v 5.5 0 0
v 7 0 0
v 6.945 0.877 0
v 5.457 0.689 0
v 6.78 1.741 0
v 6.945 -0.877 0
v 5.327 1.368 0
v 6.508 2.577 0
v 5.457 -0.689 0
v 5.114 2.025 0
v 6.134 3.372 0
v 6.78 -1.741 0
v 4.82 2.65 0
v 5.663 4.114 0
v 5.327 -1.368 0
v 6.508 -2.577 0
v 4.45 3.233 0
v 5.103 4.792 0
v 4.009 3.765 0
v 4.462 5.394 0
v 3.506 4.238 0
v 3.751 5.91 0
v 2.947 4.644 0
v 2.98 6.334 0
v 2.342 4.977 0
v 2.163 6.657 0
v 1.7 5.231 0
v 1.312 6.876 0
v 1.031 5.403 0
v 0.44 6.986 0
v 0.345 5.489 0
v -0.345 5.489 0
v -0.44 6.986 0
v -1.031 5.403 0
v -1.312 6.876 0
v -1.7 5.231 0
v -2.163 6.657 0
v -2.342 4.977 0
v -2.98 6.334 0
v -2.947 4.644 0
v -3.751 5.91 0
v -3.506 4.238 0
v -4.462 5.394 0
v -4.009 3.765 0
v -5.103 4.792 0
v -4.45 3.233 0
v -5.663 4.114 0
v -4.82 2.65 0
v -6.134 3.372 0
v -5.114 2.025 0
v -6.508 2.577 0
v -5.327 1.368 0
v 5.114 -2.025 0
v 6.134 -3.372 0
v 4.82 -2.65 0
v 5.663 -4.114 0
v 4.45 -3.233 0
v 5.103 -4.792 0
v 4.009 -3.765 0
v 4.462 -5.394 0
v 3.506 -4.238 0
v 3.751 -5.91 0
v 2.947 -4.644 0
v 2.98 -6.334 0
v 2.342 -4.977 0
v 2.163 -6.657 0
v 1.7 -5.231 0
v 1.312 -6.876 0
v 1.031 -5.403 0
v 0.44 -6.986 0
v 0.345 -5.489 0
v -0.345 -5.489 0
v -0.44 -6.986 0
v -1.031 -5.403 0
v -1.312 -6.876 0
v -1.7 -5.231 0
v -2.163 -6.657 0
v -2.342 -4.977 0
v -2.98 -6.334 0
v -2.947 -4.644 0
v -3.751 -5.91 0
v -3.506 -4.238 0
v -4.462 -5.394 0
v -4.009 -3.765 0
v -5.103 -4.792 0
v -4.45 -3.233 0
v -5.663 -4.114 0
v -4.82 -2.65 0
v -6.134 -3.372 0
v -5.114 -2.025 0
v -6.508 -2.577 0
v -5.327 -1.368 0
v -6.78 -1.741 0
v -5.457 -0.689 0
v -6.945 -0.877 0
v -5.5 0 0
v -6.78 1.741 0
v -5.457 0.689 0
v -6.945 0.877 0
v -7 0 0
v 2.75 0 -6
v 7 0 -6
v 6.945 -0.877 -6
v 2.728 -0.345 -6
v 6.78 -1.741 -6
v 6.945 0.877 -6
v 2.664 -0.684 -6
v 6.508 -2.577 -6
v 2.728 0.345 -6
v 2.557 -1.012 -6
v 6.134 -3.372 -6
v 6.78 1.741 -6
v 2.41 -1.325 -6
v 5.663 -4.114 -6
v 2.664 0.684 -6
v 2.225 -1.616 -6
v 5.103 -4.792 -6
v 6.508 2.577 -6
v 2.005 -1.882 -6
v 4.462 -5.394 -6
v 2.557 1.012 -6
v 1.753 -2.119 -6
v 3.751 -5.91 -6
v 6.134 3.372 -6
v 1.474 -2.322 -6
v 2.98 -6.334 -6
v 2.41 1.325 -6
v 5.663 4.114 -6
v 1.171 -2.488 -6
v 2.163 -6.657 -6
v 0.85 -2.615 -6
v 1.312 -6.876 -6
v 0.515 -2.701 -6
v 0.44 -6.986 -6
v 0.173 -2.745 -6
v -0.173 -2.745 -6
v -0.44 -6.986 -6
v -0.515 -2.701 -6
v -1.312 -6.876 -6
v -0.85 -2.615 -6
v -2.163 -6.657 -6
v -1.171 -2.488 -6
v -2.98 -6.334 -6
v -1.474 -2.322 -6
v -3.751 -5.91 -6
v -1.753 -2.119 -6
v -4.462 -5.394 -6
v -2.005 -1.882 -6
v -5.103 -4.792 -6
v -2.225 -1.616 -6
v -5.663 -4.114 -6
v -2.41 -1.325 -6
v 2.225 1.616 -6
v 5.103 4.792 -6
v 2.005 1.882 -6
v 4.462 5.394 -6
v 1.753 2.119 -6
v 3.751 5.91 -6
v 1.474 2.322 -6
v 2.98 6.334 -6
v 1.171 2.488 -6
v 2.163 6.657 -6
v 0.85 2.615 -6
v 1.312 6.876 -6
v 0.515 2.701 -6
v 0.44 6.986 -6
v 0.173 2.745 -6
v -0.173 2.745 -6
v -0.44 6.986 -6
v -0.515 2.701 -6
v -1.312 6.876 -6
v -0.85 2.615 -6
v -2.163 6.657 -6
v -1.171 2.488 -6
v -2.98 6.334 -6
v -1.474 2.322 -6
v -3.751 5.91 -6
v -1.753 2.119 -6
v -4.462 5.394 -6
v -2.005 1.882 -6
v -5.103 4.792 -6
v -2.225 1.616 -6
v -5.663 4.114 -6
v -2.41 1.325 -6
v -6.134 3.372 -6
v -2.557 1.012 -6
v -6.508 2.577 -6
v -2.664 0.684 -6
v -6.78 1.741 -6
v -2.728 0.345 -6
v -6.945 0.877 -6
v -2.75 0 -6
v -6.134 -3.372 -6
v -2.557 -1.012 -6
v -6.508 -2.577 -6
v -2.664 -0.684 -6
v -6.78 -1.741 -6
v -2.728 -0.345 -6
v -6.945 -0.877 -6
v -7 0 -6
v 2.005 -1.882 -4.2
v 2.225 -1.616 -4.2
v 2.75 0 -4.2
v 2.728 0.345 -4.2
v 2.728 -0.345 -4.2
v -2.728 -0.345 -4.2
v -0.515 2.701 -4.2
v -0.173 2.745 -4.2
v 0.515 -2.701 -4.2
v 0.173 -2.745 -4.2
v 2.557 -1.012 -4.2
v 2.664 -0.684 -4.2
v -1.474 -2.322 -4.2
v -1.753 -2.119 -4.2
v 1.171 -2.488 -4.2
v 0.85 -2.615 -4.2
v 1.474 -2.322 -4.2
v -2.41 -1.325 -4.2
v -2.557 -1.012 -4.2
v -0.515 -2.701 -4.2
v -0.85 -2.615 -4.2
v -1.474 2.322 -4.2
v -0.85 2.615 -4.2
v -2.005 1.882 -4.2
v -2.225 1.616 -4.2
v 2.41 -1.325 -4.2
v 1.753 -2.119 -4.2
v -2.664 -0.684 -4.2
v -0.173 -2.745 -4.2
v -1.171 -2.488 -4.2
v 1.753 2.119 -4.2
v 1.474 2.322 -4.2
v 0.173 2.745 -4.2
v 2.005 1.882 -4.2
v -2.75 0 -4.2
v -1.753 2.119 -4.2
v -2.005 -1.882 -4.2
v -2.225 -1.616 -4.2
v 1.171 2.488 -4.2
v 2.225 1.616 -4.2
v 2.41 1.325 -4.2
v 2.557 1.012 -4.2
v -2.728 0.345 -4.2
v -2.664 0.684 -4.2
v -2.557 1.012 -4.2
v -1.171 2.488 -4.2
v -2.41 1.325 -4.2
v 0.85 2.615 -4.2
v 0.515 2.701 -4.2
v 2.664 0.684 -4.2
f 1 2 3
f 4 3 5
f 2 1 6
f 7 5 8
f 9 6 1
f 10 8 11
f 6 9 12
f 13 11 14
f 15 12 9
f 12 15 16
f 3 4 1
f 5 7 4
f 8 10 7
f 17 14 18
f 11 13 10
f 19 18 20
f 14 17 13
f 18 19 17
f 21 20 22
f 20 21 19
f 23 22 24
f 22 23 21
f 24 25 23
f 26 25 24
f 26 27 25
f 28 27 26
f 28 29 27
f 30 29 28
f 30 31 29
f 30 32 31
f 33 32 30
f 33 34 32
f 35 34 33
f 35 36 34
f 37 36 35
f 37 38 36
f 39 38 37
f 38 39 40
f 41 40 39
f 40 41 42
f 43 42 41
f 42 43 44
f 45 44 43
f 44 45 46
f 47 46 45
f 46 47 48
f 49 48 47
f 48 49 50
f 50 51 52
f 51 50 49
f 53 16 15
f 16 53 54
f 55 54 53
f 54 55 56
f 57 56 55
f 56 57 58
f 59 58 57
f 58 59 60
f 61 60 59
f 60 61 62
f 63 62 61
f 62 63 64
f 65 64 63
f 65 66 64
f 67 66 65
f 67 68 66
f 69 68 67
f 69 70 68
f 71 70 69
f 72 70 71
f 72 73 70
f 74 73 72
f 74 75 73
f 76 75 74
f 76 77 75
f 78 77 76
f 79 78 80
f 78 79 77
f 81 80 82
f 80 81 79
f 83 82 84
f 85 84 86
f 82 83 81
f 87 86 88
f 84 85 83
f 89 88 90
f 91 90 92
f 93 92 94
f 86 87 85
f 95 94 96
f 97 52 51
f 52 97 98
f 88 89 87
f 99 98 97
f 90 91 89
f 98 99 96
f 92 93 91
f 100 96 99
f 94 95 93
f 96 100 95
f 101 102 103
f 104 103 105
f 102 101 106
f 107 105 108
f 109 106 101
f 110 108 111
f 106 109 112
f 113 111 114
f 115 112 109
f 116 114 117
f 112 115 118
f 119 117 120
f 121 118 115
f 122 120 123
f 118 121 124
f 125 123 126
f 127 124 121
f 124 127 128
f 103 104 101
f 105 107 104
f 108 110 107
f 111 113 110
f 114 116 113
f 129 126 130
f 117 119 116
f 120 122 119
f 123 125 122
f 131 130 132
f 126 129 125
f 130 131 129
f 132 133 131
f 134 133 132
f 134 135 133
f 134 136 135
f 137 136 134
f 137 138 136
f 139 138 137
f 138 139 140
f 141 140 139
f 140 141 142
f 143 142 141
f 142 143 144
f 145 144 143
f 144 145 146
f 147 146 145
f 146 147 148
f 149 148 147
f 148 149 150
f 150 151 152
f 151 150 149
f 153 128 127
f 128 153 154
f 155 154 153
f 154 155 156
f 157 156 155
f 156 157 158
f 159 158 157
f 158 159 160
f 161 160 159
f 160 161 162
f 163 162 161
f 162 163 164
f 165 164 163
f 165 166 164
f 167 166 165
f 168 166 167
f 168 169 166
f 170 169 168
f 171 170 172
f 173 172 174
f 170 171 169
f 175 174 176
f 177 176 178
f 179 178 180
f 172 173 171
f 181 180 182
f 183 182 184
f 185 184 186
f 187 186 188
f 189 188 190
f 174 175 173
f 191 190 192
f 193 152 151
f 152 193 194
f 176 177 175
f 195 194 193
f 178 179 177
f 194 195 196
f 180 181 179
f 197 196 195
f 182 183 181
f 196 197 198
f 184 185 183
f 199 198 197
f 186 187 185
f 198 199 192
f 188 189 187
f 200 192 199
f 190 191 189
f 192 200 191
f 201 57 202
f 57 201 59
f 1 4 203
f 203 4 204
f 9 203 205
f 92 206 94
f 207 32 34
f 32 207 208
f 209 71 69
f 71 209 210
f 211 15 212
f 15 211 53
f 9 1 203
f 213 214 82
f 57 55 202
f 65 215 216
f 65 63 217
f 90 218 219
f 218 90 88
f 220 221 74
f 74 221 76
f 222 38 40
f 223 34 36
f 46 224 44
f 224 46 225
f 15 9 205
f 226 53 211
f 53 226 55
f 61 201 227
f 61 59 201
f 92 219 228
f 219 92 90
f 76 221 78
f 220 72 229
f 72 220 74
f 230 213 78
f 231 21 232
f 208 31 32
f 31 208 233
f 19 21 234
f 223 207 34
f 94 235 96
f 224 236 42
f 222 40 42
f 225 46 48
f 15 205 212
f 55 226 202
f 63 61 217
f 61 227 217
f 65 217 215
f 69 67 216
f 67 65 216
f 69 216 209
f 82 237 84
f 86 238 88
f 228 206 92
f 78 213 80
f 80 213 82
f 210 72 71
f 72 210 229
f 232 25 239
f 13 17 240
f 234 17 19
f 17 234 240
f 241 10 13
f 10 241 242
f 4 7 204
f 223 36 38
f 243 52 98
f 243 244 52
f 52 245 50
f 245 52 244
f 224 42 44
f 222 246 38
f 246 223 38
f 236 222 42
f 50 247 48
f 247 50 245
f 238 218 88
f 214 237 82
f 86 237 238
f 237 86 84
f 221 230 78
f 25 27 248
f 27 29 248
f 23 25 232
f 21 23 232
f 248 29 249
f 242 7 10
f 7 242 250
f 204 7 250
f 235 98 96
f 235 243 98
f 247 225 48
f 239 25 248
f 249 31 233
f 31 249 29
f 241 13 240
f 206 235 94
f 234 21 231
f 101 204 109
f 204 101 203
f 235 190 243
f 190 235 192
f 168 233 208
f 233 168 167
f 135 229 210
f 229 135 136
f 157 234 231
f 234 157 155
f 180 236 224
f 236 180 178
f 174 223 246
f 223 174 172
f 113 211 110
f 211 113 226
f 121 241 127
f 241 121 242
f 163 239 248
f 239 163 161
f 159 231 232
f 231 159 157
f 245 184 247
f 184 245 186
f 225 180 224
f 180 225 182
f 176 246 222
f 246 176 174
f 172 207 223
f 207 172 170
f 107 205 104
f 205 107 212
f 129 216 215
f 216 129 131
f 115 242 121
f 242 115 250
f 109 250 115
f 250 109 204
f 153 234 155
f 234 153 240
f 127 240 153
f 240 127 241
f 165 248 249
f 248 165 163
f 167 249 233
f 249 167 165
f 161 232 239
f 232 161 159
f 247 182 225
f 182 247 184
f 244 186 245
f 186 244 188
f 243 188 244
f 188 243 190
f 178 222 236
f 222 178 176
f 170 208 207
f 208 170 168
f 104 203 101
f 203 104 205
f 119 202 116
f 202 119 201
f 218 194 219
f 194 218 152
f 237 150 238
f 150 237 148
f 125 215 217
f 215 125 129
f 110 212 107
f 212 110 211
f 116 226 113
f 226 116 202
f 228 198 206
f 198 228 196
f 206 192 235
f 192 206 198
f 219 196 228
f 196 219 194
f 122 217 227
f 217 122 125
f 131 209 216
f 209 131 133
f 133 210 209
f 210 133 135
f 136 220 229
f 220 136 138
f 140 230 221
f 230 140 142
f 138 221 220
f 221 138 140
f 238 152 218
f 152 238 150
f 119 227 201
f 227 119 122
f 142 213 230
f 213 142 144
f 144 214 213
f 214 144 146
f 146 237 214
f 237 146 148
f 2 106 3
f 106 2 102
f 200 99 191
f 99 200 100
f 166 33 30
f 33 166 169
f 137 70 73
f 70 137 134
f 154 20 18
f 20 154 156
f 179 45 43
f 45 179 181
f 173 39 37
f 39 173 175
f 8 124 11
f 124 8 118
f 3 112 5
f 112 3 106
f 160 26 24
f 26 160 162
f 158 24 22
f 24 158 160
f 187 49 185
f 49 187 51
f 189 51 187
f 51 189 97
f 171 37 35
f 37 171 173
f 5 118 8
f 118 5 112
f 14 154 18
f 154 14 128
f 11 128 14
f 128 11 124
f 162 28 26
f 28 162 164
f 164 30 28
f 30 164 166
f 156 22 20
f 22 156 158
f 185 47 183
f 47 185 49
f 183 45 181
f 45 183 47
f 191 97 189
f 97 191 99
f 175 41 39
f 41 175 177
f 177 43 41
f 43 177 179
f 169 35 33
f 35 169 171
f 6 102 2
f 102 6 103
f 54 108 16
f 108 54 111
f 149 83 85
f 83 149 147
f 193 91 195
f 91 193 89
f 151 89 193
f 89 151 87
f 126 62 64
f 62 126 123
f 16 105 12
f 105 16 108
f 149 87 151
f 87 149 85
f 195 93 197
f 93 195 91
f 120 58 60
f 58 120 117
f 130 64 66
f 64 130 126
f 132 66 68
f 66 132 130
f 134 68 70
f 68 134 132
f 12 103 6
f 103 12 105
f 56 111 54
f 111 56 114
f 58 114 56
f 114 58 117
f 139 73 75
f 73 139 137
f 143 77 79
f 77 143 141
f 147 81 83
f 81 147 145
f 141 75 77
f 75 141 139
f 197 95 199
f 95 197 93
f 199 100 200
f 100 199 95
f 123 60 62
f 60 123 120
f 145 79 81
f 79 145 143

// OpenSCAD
$fn = 50;


difference() {
	union() {
		translate(v = [0, 0, -6.0000000000]) {
			cylinder(h = 6, r = 7.0000000000);
		}
	}
	union() {
		translate(v = [0, 0, 0]) {
			rotate(a = [0, 0, 0]) {
				difference() {
					union() {
						#translate(v = [0, 0, -6.0000000000]) {
							cylinder(h = 6, r = 2.2500000000);
						}
						#translate(v = [0, 0, -4.2000000000]) {
							cylinder(h = 4.2000000000, r = 7.0000000000, r1 = 2.7500000000, r2 = 5.5000000000);
						}
						#translate(v = [0, 0, -6.0000000000]) {
							cylinder(h = 6, r = 2.7500000000);
						}
						#translate(v = [0, 0, -6.0000000000]) {
							cylinder(h = 6, r = 2.2500000000);
						}
					}
					union();
				}
			}
		}
	}
}
